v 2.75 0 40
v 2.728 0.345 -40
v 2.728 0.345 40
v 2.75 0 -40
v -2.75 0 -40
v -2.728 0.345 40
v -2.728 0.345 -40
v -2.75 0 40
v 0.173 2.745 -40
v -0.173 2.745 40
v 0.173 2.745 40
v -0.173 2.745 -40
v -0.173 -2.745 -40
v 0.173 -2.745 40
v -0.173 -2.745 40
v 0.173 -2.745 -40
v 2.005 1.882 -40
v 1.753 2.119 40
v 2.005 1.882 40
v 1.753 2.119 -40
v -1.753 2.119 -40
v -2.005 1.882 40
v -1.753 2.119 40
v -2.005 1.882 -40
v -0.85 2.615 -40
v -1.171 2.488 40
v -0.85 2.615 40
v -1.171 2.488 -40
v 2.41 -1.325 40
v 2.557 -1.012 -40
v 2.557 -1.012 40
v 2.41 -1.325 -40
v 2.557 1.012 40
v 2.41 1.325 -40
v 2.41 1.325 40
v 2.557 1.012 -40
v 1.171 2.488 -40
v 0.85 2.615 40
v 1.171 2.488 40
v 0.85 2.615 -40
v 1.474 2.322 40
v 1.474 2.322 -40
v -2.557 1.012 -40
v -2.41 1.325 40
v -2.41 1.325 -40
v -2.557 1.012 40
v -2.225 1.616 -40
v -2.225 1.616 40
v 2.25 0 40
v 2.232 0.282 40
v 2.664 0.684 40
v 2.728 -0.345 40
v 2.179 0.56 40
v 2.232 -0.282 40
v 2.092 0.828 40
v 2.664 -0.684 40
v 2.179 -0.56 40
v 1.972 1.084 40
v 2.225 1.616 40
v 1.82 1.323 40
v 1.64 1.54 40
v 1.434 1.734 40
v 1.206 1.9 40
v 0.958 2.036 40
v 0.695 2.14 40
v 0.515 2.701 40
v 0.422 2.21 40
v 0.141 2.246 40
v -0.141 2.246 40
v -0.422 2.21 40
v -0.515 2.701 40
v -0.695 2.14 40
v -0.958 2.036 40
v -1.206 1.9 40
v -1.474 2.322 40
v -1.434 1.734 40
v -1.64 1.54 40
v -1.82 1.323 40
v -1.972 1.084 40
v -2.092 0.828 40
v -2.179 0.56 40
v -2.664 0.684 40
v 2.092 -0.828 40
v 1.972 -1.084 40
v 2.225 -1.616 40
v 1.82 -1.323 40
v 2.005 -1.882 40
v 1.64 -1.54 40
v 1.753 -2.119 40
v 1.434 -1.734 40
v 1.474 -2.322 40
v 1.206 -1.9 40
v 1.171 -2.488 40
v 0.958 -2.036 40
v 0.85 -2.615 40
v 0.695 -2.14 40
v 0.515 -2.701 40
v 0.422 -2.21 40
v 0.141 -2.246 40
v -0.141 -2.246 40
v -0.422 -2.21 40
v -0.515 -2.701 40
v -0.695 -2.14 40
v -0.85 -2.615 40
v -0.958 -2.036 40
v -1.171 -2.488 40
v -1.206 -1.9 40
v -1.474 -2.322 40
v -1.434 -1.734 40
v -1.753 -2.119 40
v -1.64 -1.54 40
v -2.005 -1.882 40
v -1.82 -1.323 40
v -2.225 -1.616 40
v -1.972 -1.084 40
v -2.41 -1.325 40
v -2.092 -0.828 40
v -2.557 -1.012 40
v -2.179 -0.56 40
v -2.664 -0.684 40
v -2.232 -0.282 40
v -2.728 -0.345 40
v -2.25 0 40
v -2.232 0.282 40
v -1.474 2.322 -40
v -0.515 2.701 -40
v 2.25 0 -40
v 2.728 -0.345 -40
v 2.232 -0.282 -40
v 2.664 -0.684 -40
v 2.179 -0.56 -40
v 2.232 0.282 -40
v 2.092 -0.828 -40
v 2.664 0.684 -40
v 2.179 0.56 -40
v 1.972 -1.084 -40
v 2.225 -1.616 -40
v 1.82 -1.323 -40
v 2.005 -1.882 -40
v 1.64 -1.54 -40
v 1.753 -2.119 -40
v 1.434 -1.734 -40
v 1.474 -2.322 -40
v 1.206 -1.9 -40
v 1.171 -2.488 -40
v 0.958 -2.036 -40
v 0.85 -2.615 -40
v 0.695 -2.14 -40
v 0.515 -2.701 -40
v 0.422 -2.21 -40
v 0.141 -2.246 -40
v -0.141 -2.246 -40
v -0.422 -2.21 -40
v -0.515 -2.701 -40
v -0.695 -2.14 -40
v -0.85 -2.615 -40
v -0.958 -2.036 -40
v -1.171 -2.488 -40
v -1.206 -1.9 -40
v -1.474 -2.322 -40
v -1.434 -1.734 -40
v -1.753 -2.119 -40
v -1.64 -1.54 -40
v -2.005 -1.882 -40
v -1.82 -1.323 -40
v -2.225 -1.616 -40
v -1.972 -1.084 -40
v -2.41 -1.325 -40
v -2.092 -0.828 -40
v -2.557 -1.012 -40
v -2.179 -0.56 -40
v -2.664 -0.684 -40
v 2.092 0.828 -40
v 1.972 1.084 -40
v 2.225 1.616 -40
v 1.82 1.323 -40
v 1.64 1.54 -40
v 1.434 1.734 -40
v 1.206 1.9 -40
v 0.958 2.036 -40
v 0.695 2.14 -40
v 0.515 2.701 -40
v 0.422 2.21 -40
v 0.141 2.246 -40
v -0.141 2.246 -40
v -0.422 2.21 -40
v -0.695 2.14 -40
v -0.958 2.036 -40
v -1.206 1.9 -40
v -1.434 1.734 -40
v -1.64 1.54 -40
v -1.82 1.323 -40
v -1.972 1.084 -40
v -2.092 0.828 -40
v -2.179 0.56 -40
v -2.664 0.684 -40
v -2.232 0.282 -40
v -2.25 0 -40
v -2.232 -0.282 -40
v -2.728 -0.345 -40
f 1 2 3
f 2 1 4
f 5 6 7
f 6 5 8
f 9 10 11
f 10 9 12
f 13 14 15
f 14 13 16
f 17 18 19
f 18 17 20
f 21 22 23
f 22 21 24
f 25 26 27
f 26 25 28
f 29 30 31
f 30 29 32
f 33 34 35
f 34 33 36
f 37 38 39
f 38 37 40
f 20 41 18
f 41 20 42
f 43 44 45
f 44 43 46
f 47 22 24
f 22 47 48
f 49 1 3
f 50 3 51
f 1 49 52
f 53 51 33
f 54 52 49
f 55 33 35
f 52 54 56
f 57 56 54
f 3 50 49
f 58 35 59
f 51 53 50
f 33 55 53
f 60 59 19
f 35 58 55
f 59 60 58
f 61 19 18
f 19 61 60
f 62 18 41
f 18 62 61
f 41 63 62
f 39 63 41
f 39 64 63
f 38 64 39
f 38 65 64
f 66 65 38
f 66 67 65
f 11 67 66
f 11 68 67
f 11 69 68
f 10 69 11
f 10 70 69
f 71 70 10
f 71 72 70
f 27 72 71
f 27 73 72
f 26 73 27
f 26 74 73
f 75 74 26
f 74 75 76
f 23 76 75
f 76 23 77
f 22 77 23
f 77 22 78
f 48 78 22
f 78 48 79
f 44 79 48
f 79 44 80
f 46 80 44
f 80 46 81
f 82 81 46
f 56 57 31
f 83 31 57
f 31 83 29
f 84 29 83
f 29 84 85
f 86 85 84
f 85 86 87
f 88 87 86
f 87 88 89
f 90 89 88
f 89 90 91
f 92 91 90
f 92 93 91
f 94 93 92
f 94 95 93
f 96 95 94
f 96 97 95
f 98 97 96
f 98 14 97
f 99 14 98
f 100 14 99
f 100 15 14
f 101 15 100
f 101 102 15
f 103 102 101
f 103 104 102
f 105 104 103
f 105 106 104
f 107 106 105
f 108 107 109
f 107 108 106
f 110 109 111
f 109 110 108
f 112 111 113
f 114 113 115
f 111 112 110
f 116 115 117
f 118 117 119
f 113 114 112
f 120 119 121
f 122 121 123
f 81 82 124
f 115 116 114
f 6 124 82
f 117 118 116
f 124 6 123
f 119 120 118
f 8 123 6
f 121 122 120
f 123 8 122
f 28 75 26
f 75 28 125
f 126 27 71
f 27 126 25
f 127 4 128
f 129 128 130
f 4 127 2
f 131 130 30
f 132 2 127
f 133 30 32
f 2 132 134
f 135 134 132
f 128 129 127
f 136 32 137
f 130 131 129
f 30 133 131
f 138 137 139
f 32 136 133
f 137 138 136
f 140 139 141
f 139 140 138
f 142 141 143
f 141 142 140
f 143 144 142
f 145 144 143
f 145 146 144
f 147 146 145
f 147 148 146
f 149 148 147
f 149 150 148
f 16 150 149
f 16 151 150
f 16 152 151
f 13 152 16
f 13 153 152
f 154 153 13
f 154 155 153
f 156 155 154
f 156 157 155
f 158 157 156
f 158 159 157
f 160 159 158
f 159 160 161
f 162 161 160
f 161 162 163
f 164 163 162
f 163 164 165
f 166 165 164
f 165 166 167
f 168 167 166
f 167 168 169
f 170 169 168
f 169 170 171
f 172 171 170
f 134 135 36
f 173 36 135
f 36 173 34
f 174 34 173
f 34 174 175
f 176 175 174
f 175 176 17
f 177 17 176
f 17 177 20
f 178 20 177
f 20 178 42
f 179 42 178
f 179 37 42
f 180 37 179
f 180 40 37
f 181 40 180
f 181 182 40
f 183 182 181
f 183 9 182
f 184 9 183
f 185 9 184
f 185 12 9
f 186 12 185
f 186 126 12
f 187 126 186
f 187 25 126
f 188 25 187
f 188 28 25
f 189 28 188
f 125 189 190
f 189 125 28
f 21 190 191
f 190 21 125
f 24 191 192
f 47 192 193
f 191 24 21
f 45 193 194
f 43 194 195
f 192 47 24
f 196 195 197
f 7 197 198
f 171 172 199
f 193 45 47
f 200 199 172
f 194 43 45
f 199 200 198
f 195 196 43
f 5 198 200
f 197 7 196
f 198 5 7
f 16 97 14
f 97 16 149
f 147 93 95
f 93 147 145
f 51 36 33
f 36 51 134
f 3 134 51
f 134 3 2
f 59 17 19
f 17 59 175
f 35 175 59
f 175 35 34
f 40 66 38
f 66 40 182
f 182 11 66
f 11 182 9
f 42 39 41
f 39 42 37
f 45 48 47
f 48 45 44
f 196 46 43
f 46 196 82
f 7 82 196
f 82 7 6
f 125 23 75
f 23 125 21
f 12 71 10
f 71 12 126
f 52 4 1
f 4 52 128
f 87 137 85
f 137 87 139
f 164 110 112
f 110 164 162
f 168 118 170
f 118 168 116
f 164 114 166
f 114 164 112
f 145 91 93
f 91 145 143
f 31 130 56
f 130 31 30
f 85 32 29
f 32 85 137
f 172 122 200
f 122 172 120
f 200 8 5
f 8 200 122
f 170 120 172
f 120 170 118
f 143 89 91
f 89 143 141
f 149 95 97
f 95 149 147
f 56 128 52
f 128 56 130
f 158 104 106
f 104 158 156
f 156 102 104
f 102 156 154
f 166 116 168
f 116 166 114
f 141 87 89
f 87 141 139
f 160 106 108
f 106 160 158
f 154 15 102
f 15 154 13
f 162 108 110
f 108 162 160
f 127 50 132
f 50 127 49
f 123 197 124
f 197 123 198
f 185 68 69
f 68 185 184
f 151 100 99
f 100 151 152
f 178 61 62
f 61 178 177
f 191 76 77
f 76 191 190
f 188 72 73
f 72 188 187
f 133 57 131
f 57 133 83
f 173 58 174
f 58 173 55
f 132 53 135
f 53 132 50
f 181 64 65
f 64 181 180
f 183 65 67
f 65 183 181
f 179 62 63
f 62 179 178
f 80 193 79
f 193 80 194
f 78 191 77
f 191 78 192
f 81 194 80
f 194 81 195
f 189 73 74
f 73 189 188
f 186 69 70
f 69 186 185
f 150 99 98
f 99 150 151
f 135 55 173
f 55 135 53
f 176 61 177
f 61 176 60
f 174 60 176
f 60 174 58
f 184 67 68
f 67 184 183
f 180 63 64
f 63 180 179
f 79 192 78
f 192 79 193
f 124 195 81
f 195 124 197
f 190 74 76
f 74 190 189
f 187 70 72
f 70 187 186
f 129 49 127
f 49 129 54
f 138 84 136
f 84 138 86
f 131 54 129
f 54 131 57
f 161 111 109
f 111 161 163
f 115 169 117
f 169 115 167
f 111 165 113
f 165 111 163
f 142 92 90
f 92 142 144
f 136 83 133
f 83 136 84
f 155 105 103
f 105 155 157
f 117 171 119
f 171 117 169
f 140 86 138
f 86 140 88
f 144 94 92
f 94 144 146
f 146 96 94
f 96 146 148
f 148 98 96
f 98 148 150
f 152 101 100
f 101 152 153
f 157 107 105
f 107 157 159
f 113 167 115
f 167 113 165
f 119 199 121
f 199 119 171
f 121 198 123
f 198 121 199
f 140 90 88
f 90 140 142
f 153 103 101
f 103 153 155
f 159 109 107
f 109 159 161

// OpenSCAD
$fn = 50;


difference() {
	union() {
		translate(v = [0, 0, -40.0000000000]) {
			cylinder(h = 80, r = 2.7500000000);
		}
	}
	union() {
		translate(v = [0, 0, -100.0000000000]) {
			cylinder(h = 200, r = 2.2500000000);
		}
	}
}
